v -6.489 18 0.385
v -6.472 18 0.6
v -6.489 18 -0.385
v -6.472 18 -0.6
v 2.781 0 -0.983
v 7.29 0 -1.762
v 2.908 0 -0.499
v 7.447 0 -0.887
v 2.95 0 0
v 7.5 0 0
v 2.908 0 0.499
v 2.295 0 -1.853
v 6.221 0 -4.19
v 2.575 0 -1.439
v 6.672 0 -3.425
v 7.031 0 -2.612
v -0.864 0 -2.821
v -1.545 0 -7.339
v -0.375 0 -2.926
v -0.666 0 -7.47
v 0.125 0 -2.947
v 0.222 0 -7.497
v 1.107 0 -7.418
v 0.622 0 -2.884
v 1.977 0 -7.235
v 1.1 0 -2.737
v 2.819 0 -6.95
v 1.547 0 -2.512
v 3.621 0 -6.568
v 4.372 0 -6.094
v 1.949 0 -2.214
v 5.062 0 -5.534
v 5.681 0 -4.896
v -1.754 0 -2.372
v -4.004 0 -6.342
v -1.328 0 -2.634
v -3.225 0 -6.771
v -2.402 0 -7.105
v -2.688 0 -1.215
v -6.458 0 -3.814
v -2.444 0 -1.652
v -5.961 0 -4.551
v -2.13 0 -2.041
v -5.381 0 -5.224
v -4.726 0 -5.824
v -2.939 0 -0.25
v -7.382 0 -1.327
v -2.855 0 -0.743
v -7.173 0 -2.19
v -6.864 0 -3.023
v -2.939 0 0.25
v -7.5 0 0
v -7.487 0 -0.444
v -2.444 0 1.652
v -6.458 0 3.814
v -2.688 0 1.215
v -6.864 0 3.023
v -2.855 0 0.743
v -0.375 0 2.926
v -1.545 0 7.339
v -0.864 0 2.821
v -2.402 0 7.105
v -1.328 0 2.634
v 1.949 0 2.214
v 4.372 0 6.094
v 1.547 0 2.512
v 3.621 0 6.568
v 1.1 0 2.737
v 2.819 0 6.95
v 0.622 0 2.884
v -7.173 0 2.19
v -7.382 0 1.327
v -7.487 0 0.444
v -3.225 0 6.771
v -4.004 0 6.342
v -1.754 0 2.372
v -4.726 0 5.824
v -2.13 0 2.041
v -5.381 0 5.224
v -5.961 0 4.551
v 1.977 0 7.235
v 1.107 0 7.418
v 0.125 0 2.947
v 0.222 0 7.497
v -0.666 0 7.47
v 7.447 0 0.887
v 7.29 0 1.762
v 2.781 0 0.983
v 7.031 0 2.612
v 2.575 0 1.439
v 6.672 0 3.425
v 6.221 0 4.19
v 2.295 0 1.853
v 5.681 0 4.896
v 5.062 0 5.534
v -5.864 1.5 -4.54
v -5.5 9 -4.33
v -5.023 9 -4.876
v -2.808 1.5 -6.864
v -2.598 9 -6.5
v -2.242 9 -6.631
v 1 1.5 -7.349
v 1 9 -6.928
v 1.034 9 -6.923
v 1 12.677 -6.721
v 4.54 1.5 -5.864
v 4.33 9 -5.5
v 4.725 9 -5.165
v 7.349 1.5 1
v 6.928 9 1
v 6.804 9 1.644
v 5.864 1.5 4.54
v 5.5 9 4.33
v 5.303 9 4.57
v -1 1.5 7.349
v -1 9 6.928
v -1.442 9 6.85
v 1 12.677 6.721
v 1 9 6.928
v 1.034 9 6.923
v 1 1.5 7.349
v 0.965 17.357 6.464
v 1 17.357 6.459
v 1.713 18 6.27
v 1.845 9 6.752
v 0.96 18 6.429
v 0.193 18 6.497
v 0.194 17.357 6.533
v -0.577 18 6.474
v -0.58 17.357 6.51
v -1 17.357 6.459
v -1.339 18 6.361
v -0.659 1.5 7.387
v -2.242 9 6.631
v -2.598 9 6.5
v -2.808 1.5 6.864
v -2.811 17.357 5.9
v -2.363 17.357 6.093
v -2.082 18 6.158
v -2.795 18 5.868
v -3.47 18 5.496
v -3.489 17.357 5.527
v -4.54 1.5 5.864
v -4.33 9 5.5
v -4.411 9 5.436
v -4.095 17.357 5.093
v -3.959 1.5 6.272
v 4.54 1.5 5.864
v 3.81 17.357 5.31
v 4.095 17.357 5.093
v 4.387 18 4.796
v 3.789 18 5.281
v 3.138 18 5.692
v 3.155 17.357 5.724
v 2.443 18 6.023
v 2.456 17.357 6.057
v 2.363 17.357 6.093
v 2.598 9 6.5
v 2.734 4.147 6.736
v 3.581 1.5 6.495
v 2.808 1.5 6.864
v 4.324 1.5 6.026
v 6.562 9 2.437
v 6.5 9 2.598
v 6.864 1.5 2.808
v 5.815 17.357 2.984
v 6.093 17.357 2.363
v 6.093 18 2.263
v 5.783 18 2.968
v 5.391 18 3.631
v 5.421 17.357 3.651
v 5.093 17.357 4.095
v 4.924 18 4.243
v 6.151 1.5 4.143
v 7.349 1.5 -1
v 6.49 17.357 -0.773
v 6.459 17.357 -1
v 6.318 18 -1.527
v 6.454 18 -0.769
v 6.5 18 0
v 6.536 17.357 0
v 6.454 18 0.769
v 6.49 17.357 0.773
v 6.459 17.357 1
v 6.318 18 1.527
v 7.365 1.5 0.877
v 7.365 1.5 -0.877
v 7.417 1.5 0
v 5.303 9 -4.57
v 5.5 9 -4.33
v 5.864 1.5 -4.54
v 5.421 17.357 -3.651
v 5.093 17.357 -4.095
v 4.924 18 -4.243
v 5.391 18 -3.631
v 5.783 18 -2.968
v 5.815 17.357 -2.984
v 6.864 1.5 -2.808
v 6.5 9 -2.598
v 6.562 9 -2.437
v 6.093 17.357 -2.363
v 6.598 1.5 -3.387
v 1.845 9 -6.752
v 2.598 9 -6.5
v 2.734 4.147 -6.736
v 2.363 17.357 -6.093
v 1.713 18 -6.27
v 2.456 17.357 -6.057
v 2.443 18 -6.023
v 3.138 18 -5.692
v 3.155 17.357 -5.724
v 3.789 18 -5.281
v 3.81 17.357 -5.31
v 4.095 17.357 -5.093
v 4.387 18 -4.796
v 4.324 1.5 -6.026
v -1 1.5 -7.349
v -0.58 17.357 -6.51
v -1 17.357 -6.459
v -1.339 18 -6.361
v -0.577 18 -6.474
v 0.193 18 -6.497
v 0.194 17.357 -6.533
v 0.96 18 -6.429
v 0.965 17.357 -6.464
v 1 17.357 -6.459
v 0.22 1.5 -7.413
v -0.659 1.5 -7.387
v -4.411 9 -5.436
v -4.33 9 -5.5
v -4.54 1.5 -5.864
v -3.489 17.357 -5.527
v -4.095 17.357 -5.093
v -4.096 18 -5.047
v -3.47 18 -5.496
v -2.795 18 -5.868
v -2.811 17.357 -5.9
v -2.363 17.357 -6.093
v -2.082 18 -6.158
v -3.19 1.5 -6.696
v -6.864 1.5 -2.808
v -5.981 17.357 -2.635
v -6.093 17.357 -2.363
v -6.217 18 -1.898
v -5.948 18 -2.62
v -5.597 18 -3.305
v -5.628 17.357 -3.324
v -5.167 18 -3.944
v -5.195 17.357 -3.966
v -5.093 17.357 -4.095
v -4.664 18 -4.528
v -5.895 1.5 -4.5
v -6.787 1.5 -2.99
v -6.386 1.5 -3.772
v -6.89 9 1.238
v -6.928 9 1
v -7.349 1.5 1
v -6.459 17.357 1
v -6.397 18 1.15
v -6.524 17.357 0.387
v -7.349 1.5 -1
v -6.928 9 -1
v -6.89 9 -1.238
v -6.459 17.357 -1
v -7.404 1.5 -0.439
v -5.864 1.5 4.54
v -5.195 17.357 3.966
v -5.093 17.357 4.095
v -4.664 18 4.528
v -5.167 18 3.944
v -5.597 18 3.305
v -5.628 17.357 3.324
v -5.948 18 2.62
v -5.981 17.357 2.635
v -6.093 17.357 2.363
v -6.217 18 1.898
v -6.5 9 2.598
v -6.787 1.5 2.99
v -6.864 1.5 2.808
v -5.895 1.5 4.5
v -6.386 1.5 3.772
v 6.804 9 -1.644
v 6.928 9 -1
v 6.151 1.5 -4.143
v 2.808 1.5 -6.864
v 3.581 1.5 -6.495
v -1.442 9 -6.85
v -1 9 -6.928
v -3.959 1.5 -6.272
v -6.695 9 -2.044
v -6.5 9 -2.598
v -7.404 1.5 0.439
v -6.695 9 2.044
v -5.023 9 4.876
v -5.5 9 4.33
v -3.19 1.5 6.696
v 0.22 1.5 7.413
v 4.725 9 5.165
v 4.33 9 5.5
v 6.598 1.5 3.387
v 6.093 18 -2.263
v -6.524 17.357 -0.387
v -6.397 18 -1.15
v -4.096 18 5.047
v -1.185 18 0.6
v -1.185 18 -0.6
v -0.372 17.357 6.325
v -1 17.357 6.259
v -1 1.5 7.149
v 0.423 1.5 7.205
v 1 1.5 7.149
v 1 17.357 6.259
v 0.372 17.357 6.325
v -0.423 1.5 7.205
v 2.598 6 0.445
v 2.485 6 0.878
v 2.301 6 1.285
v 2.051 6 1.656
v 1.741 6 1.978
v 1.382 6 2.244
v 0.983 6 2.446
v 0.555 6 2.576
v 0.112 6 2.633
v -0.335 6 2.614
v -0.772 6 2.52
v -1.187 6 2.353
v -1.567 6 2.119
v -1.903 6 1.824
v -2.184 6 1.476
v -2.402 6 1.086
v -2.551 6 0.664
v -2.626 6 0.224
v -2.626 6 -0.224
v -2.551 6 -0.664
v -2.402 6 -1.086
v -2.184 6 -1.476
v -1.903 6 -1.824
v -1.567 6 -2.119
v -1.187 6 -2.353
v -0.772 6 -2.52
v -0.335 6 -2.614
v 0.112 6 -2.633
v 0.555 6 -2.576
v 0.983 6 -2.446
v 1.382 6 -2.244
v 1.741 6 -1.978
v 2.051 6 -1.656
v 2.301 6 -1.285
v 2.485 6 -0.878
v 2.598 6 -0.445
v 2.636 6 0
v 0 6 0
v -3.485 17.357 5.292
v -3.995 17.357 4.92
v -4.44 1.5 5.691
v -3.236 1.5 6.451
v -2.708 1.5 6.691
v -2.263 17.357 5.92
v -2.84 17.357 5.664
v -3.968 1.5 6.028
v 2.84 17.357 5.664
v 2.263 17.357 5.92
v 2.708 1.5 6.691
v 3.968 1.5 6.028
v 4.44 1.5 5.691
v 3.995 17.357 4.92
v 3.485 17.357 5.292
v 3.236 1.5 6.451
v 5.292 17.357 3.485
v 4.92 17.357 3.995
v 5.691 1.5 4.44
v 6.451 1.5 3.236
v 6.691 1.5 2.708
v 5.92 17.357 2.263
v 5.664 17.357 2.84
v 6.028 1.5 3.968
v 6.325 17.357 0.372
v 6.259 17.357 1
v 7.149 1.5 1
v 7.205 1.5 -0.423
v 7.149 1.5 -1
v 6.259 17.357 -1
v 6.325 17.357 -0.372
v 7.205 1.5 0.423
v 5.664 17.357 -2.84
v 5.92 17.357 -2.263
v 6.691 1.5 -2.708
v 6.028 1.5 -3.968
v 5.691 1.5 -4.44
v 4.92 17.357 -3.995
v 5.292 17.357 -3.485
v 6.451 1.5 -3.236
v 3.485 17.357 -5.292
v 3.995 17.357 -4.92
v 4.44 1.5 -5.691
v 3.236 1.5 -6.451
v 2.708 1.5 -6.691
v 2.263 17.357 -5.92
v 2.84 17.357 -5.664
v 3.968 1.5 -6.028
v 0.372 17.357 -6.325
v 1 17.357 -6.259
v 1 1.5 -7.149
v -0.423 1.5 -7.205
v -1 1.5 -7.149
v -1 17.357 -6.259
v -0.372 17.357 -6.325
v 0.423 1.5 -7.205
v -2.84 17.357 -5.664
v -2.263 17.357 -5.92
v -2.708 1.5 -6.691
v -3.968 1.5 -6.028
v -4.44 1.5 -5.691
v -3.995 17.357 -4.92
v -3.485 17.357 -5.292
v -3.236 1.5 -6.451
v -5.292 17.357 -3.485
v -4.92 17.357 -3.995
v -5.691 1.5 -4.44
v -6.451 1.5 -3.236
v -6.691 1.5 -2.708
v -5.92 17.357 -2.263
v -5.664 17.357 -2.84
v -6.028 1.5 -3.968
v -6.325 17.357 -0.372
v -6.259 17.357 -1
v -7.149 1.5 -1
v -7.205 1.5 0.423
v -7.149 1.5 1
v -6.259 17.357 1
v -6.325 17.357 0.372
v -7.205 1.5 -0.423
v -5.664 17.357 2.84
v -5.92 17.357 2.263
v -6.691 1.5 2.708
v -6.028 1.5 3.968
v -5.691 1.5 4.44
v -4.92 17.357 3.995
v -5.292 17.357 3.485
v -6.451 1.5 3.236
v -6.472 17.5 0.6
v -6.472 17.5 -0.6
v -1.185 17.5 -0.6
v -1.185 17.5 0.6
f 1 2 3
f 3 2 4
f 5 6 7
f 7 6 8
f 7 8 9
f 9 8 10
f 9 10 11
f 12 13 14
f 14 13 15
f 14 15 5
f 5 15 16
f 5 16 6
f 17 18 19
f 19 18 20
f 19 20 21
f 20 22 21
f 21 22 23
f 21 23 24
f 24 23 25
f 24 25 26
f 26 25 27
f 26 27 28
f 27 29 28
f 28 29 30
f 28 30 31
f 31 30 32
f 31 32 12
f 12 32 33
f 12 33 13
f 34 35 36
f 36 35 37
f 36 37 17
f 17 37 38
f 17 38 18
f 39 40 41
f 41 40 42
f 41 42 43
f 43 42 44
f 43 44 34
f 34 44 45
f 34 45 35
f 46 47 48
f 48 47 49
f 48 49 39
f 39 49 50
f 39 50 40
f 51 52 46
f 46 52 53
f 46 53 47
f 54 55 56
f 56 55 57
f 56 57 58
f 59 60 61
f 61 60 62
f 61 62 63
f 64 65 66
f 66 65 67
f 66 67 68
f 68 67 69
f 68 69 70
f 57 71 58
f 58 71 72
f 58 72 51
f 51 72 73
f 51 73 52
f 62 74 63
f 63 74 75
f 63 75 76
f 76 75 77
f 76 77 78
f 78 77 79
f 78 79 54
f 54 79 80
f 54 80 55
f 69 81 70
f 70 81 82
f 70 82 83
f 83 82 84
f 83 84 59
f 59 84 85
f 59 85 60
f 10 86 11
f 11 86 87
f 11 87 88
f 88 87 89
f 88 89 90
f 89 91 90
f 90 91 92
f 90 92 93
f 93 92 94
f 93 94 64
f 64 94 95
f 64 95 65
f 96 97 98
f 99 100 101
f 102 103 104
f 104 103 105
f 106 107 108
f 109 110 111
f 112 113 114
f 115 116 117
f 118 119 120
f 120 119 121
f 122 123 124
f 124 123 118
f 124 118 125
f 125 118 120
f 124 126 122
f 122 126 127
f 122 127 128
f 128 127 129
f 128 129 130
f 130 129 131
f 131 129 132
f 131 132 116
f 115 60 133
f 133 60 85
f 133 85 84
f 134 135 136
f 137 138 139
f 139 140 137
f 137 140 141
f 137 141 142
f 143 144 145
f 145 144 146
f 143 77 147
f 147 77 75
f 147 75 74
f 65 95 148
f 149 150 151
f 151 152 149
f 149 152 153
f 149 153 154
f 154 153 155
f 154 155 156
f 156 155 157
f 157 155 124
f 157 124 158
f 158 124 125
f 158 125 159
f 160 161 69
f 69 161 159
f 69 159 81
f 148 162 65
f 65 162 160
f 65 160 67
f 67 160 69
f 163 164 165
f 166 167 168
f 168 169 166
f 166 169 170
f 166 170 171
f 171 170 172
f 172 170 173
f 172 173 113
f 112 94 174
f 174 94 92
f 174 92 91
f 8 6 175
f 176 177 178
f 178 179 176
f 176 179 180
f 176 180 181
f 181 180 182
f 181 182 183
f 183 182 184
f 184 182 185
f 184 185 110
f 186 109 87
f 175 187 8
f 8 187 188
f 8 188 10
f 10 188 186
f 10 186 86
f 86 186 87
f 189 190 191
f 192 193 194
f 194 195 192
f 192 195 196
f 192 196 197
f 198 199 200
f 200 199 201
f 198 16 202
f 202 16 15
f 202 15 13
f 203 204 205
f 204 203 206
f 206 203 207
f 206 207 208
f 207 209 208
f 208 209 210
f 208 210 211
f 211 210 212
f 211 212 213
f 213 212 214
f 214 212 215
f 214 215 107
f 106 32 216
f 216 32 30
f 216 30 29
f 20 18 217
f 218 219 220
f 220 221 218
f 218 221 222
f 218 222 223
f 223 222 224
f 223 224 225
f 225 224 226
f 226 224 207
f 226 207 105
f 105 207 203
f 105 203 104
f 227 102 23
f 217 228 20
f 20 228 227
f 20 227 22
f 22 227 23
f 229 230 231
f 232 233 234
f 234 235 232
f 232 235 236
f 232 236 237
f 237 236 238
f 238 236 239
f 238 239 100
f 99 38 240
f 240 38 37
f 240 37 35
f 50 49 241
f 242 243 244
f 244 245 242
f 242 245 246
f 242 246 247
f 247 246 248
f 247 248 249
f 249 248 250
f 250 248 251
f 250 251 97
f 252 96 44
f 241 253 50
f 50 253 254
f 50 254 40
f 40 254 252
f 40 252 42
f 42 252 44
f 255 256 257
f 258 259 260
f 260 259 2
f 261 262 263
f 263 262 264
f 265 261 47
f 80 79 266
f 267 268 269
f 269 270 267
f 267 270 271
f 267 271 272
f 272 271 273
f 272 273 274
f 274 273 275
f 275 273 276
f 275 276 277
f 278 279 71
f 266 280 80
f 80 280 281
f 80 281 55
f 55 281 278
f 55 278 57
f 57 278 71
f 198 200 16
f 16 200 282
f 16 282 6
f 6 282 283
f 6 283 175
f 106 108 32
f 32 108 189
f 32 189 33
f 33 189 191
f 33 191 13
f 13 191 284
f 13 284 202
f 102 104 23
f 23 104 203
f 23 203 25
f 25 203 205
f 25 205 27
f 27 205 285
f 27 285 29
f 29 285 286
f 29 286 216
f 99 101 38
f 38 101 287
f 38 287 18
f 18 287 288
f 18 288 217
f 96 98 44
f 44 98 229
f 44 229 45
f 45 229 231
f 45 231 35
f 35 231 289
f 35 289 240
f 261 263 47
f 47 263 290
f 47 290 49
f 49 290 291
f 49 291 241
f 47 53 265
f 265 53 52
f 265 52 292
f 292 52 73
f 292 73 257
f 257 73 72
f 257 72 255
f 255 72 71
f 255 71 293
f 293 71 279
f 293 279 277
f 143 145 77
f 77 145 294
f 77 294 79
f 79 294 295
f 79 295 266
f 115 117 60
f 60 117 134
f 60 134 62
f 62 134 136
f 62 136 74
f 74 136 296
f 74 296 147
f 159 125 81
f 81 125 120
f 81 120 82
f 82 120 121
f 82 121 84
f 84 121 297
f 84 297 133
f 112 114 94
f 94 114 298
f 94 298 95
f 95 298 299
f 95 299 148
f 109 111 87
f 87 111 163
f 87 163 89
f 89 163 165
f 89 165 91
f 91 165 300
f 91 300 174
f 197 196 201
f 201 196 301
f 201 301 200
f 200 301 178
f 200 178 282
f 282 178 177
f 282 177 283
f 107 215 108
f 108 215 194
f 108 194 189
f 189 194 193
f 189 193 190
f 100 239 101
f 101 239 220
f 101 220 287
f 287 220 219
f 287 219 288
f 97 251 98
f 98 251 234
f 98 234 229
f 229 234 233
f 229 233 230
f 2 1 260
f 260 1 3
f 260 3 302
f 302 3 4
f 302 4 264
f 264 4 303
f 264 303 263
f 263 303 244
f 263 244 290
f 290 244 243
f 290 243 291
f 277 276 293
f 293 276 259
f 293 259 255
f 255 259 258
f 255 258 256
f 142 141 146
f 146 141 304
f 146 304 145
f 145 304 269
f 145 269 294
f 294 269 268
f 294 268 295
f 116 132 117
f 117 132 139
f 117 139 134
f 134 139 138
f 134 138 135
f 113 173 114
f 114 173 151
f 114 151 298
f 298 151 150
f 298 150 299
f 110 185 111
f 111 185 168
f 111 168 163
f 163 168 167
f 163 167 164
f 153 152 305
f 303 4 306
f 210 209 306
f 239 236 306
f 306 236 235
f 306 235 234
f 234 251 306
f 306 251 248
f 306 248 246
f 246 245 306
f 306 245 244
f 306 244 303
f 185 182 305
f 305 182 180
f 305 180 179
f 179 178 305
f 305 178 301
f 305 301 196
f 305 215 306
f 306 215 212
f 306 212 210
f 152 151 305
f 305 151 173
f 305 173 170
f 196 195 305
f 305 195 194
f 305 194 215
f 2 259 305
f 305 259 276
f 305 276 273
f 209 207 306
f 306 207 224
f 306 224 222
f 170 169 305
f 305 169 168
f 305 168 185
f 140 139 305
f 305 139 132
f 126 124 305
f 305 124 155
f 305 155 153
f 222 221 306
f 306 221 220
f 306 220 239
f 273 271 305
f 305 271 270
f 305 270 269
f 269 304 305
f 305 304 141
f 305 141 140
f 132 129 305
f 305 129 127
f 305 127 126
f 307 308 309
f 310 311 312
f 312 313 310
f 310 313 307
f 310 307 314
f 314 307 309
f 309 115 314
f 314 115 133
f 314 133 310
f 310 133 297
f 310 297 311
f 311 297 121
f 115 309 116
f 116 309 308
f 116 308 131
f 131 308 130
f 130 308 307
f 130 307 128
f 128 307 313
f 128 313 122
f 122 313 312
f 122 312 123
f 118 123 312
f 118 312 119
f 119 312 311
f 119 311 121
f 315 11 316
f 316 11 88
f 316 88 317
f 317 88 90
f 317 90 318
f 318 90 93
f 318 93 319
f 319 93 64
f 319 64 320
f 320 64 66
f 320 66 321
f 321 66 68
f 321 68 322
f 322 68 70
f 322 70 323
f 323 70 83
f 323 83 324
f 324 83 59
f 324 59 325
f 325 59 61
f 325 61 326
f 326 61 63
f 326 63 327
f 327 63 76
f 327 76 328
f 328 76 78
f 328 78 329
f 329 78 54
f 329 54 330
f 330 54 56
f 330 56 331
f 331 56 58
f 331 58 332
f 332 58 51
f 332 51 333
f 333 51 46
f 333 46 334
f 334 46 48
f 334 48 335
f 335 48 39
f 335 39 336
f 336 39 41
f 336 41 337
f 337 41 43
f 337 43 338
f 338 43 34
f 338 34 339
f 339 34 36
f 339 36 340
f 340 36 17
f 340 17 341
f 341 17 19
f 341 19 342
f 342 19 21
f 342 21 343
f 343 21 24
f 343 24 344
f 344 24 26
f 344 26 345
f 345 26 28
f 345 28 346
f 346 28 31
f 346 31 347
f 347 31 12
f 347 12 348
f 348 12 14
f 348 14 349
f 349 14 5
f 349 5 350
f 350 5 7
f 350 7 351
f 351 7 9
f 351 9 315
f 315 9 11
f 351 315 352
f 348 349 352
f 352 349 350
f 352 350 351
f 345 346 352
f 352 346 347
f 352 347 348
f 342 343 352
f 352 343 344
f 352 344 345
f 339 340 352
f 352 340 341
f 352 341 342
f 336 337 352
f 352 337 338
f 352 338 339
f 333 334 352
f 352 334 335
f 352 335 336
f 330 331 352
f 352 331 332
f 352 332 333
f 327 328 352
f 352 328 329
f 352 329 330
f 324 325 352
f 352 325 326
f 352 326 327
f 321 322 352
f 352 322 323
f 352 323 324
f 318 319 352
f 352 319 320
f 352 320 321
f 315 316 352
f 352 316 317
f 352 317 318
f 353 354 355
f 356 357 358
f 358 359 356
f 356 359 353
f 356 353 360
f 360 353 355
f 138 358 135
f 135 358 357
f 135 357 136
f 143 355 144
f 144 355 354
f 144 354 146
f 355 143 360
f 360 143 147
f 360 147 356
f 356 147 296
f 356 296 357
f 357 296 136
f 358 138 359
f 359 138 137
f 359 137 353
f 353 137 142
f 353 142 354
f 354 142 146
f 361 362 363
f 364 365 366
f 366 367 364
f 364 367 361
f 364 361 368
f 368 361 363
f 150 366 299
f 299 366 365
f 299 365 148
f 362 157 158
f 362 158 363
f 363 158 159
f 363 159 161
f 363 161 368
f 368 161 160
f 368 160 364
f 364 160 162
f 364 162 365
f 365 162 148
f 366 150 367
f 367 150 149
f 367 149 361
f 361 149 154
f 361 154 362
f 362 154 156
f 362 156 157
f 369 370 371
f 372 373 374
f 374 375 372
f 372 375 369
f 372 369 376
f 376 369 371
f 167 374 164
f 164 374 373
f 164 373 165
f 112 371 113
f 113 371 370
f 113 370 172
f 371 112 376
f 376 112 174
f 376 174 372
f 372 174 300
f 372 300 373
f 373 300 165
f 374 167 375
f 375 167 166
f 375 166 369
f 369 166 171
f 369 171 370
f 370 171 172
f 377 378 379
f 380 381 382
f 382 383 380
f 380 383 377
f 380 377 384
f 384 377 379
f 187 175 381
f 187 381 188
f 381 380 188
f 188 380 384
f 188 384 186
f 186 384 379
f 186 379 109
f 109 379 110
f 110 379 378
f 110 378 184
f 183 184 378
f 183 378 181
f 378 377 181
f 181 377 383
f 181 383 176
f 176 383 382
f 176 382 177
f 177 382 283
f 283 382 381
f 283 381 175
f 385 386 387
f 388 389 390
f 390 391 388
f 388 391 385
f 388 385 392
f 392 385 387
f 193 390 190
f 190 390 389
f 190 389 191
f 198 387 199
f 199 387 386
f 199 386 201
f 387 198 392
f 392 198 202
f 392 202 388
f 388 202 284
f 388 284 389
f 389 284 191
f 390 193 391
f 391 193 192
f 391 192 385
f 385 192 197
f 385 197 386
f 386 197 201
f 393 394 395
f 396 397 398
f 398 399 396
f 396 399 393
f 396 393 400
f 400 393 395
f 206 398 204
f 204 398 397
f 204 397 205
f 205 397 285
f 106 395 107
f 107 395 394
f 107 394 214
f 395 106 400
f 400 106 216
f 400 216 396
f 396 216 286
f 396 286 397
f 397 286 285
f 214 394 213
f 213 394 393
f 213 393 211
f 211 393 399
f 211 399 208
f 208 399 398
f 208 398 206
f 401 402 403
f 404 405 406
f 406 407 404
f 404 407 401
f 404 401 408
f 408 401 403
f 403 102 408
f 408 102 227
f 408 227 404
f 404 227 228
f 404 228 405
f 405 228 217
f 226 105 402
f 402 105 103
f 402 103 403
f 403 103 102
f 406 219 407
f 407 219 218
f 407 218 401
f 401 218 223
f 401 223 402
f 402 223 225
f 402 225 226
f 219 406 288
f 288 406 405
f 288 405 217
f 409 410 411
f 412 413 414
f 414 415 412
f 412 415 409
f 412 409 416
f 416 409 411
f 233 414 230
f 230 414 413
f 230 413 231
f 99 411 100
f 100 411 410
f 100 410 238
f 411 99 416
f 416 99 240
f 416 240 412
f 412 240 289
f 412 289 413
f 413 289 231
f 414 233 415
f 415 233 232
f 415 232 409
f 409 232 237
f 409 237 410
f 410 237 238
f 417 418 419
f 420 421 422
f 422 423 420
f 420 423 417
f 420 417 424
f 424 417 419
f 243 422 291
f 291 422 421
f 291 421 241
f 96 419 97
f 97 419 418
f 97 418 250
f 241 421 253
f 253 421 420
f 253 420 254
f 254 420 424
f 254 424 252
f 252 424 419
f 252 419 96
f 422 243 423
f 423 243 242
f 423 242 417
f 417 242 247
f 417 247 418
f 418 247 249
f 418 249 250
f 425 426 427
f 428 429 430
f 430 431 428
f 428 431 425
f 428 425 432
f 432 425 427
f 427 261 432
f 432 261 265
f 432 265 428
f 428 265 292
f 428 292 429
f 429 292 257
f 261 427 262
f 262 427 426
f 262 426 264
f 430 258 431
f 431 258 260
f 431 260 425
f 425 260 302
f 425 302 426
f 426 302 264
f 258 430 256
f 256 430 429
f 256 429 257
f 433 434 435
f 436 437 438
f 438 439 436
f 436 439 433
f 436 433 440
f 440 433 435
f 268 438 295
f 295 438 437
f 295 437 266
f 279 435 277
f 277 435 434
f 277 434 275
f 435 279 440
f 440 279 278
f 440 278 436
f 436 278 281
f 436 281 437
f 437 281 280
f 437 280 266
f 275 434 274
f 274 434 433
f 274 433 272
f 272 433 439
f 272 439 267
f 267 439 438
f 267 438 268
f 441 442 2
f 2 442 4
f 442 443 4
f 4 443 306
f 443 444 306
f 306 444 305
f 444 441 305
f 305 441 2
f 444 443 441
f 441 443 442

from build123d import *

# Parameters (mm, degrees)
ENL_V_MAT_EXTRU_1_REACH      = 28.401
ESQUISSE3_W                  = 2
ESQUISSE3_H                  = 15.856728551
ESQUISSE4_R                  = 2.95
ENL_V_MAT_EXTRU_2_DEPTH      = 6
ENL_V_MAT_EXTRU_2_DRAFT      = -3
R_P_TITION_CIRCULAIRE4_COUNT = 12
ESQUISSE5_W                  = 5.287177124
ESQUISSE5_H                  = 1.2
ENL_V_MAT_EXTRU_3_DEPTH      = 2.5


with BuildPart() as part:
    # Esquisse1 → Révolution1 (revolve)
    with BuildSketch(Plane.XY):
        Polygon((0, 0), (-7.5, 0), (-6.5, 18), (0, 18), align=None)
    revolve(axis=Axis((0, 18, 0), (0, -1, 0)))

    # Enlèv. mat.-Extru.1: from a cone face, 28.401 long prism both ways, kept between that surface and its translate by the depth
    enl_v_mat_extru_1_start = Plane(origin=(0, 9.428364, 0), z_dir=(0, -1, 0)) * Cone(4.983024111, 8.969379889, 71.754404, mode=Mode.PRIVATE)
    enl_v_mat_extru_1_end = Plane(origin=(0, 9.428364, -0.2), z_dir=(0, -1, 0)) * Cone(4.983024111, 8.969379889, 71.754404, mode=Mode.PRIVATE)
    # Esquisse3 → Enlèv. mat.-Extru.1 (cut, from a surface)
    with BuildSketch(Plane.XY.offset(10), mode=Mode.PRIVATE) as enl_v_mat_extru_1_sk1:
        with Locations((0, 9.428364275)):
            Rectangle(ESQUISSE3_W, ESQUISSE3_H)
    enl_v_mat_extru_1_tool1 = extrude(enl_v_mat_extru_1_sk1.sketch, amount=ENL_V_MAT_EXTRU_1_REACH, both=True, mode=Mode.PRIVATE)
    enl_v_mat_extru_1 = ((enl_v_mat_extru_1_tool1 & enl_v_mat_extru_1_start) - enl_v_mat_extru_1_end).solids().sort_by_distance((0, 9.428364, 6.803862))[0]
    add(enl_v_mat_extru_1, mode=Mode.SUBTRACT)


with BuildPart() as enl_v_mat_extru_2_tool:
    # Esquisse4 → Enlèv. mat.-Extru.2 (with draft: the straight prism first)
    with BuildSketch(Plane.XZ):
        Circle(ESQUISSE4_R)
    extrude(amount=-ENL_V_MAT_EXTRU_2_DEPTH)
    # Enlèv. mat.-Extru.2: the draft: its side faces are tilted about the plane it starts from
    enl_v_mat_extru_2_sides = [enl_v_mat_extru_2_tool.faces().sort_by_distance(p)[0] for p in [
        (-2.95, 3, 0),
    ]]
    draft(enl_v_mat_extru_2_sides, Plane.XZ, ENL_V_MAT_EXTRU_2_DRAFT)


with BuildPart() as part_1:
    add(part.part)

    # Enlèv. mat.-Extru.2: cut by enl_v_mat_extru_2_tool
    add(enl_v_mat_extru_2_tool.part, mode=Mode.SUBTRACT)

    # Répétition circulaire4: Enlèv. mat.-Extru.1 ×12 about axis
    r_p_tition_circulaire4_axis = Axis((0, 0, 0), (0, 1, 0))
    for i in range(1, R_P_TITION_CIRCULAIRE4_COUNT):
        add(enl_v_mat_extru_1.rotate(r_p_tition_circulaire4_axis, i * 360 / R_P_TITION_CIRCULAIRE4_COUNT), mode=Mode.SUBTRACT)

    # Esquisse5 → Enlèv. mat.-Extru.3 (cut)
    with BuildSketch(Plane(origin=(0, 20, 0), x_dir=(1, 0, 0), z_dir=(0, 1, 0))):
        with Locations((-3.828659888, 0)):
            Rectangle(ESQUISSE5_W, ESQUISSE5_H)
    extrude(amount=-ENL_V_MAT_EXTRU_3_DEPTH, mode=Mode.SUBTRACT)


solid = part_1.part
